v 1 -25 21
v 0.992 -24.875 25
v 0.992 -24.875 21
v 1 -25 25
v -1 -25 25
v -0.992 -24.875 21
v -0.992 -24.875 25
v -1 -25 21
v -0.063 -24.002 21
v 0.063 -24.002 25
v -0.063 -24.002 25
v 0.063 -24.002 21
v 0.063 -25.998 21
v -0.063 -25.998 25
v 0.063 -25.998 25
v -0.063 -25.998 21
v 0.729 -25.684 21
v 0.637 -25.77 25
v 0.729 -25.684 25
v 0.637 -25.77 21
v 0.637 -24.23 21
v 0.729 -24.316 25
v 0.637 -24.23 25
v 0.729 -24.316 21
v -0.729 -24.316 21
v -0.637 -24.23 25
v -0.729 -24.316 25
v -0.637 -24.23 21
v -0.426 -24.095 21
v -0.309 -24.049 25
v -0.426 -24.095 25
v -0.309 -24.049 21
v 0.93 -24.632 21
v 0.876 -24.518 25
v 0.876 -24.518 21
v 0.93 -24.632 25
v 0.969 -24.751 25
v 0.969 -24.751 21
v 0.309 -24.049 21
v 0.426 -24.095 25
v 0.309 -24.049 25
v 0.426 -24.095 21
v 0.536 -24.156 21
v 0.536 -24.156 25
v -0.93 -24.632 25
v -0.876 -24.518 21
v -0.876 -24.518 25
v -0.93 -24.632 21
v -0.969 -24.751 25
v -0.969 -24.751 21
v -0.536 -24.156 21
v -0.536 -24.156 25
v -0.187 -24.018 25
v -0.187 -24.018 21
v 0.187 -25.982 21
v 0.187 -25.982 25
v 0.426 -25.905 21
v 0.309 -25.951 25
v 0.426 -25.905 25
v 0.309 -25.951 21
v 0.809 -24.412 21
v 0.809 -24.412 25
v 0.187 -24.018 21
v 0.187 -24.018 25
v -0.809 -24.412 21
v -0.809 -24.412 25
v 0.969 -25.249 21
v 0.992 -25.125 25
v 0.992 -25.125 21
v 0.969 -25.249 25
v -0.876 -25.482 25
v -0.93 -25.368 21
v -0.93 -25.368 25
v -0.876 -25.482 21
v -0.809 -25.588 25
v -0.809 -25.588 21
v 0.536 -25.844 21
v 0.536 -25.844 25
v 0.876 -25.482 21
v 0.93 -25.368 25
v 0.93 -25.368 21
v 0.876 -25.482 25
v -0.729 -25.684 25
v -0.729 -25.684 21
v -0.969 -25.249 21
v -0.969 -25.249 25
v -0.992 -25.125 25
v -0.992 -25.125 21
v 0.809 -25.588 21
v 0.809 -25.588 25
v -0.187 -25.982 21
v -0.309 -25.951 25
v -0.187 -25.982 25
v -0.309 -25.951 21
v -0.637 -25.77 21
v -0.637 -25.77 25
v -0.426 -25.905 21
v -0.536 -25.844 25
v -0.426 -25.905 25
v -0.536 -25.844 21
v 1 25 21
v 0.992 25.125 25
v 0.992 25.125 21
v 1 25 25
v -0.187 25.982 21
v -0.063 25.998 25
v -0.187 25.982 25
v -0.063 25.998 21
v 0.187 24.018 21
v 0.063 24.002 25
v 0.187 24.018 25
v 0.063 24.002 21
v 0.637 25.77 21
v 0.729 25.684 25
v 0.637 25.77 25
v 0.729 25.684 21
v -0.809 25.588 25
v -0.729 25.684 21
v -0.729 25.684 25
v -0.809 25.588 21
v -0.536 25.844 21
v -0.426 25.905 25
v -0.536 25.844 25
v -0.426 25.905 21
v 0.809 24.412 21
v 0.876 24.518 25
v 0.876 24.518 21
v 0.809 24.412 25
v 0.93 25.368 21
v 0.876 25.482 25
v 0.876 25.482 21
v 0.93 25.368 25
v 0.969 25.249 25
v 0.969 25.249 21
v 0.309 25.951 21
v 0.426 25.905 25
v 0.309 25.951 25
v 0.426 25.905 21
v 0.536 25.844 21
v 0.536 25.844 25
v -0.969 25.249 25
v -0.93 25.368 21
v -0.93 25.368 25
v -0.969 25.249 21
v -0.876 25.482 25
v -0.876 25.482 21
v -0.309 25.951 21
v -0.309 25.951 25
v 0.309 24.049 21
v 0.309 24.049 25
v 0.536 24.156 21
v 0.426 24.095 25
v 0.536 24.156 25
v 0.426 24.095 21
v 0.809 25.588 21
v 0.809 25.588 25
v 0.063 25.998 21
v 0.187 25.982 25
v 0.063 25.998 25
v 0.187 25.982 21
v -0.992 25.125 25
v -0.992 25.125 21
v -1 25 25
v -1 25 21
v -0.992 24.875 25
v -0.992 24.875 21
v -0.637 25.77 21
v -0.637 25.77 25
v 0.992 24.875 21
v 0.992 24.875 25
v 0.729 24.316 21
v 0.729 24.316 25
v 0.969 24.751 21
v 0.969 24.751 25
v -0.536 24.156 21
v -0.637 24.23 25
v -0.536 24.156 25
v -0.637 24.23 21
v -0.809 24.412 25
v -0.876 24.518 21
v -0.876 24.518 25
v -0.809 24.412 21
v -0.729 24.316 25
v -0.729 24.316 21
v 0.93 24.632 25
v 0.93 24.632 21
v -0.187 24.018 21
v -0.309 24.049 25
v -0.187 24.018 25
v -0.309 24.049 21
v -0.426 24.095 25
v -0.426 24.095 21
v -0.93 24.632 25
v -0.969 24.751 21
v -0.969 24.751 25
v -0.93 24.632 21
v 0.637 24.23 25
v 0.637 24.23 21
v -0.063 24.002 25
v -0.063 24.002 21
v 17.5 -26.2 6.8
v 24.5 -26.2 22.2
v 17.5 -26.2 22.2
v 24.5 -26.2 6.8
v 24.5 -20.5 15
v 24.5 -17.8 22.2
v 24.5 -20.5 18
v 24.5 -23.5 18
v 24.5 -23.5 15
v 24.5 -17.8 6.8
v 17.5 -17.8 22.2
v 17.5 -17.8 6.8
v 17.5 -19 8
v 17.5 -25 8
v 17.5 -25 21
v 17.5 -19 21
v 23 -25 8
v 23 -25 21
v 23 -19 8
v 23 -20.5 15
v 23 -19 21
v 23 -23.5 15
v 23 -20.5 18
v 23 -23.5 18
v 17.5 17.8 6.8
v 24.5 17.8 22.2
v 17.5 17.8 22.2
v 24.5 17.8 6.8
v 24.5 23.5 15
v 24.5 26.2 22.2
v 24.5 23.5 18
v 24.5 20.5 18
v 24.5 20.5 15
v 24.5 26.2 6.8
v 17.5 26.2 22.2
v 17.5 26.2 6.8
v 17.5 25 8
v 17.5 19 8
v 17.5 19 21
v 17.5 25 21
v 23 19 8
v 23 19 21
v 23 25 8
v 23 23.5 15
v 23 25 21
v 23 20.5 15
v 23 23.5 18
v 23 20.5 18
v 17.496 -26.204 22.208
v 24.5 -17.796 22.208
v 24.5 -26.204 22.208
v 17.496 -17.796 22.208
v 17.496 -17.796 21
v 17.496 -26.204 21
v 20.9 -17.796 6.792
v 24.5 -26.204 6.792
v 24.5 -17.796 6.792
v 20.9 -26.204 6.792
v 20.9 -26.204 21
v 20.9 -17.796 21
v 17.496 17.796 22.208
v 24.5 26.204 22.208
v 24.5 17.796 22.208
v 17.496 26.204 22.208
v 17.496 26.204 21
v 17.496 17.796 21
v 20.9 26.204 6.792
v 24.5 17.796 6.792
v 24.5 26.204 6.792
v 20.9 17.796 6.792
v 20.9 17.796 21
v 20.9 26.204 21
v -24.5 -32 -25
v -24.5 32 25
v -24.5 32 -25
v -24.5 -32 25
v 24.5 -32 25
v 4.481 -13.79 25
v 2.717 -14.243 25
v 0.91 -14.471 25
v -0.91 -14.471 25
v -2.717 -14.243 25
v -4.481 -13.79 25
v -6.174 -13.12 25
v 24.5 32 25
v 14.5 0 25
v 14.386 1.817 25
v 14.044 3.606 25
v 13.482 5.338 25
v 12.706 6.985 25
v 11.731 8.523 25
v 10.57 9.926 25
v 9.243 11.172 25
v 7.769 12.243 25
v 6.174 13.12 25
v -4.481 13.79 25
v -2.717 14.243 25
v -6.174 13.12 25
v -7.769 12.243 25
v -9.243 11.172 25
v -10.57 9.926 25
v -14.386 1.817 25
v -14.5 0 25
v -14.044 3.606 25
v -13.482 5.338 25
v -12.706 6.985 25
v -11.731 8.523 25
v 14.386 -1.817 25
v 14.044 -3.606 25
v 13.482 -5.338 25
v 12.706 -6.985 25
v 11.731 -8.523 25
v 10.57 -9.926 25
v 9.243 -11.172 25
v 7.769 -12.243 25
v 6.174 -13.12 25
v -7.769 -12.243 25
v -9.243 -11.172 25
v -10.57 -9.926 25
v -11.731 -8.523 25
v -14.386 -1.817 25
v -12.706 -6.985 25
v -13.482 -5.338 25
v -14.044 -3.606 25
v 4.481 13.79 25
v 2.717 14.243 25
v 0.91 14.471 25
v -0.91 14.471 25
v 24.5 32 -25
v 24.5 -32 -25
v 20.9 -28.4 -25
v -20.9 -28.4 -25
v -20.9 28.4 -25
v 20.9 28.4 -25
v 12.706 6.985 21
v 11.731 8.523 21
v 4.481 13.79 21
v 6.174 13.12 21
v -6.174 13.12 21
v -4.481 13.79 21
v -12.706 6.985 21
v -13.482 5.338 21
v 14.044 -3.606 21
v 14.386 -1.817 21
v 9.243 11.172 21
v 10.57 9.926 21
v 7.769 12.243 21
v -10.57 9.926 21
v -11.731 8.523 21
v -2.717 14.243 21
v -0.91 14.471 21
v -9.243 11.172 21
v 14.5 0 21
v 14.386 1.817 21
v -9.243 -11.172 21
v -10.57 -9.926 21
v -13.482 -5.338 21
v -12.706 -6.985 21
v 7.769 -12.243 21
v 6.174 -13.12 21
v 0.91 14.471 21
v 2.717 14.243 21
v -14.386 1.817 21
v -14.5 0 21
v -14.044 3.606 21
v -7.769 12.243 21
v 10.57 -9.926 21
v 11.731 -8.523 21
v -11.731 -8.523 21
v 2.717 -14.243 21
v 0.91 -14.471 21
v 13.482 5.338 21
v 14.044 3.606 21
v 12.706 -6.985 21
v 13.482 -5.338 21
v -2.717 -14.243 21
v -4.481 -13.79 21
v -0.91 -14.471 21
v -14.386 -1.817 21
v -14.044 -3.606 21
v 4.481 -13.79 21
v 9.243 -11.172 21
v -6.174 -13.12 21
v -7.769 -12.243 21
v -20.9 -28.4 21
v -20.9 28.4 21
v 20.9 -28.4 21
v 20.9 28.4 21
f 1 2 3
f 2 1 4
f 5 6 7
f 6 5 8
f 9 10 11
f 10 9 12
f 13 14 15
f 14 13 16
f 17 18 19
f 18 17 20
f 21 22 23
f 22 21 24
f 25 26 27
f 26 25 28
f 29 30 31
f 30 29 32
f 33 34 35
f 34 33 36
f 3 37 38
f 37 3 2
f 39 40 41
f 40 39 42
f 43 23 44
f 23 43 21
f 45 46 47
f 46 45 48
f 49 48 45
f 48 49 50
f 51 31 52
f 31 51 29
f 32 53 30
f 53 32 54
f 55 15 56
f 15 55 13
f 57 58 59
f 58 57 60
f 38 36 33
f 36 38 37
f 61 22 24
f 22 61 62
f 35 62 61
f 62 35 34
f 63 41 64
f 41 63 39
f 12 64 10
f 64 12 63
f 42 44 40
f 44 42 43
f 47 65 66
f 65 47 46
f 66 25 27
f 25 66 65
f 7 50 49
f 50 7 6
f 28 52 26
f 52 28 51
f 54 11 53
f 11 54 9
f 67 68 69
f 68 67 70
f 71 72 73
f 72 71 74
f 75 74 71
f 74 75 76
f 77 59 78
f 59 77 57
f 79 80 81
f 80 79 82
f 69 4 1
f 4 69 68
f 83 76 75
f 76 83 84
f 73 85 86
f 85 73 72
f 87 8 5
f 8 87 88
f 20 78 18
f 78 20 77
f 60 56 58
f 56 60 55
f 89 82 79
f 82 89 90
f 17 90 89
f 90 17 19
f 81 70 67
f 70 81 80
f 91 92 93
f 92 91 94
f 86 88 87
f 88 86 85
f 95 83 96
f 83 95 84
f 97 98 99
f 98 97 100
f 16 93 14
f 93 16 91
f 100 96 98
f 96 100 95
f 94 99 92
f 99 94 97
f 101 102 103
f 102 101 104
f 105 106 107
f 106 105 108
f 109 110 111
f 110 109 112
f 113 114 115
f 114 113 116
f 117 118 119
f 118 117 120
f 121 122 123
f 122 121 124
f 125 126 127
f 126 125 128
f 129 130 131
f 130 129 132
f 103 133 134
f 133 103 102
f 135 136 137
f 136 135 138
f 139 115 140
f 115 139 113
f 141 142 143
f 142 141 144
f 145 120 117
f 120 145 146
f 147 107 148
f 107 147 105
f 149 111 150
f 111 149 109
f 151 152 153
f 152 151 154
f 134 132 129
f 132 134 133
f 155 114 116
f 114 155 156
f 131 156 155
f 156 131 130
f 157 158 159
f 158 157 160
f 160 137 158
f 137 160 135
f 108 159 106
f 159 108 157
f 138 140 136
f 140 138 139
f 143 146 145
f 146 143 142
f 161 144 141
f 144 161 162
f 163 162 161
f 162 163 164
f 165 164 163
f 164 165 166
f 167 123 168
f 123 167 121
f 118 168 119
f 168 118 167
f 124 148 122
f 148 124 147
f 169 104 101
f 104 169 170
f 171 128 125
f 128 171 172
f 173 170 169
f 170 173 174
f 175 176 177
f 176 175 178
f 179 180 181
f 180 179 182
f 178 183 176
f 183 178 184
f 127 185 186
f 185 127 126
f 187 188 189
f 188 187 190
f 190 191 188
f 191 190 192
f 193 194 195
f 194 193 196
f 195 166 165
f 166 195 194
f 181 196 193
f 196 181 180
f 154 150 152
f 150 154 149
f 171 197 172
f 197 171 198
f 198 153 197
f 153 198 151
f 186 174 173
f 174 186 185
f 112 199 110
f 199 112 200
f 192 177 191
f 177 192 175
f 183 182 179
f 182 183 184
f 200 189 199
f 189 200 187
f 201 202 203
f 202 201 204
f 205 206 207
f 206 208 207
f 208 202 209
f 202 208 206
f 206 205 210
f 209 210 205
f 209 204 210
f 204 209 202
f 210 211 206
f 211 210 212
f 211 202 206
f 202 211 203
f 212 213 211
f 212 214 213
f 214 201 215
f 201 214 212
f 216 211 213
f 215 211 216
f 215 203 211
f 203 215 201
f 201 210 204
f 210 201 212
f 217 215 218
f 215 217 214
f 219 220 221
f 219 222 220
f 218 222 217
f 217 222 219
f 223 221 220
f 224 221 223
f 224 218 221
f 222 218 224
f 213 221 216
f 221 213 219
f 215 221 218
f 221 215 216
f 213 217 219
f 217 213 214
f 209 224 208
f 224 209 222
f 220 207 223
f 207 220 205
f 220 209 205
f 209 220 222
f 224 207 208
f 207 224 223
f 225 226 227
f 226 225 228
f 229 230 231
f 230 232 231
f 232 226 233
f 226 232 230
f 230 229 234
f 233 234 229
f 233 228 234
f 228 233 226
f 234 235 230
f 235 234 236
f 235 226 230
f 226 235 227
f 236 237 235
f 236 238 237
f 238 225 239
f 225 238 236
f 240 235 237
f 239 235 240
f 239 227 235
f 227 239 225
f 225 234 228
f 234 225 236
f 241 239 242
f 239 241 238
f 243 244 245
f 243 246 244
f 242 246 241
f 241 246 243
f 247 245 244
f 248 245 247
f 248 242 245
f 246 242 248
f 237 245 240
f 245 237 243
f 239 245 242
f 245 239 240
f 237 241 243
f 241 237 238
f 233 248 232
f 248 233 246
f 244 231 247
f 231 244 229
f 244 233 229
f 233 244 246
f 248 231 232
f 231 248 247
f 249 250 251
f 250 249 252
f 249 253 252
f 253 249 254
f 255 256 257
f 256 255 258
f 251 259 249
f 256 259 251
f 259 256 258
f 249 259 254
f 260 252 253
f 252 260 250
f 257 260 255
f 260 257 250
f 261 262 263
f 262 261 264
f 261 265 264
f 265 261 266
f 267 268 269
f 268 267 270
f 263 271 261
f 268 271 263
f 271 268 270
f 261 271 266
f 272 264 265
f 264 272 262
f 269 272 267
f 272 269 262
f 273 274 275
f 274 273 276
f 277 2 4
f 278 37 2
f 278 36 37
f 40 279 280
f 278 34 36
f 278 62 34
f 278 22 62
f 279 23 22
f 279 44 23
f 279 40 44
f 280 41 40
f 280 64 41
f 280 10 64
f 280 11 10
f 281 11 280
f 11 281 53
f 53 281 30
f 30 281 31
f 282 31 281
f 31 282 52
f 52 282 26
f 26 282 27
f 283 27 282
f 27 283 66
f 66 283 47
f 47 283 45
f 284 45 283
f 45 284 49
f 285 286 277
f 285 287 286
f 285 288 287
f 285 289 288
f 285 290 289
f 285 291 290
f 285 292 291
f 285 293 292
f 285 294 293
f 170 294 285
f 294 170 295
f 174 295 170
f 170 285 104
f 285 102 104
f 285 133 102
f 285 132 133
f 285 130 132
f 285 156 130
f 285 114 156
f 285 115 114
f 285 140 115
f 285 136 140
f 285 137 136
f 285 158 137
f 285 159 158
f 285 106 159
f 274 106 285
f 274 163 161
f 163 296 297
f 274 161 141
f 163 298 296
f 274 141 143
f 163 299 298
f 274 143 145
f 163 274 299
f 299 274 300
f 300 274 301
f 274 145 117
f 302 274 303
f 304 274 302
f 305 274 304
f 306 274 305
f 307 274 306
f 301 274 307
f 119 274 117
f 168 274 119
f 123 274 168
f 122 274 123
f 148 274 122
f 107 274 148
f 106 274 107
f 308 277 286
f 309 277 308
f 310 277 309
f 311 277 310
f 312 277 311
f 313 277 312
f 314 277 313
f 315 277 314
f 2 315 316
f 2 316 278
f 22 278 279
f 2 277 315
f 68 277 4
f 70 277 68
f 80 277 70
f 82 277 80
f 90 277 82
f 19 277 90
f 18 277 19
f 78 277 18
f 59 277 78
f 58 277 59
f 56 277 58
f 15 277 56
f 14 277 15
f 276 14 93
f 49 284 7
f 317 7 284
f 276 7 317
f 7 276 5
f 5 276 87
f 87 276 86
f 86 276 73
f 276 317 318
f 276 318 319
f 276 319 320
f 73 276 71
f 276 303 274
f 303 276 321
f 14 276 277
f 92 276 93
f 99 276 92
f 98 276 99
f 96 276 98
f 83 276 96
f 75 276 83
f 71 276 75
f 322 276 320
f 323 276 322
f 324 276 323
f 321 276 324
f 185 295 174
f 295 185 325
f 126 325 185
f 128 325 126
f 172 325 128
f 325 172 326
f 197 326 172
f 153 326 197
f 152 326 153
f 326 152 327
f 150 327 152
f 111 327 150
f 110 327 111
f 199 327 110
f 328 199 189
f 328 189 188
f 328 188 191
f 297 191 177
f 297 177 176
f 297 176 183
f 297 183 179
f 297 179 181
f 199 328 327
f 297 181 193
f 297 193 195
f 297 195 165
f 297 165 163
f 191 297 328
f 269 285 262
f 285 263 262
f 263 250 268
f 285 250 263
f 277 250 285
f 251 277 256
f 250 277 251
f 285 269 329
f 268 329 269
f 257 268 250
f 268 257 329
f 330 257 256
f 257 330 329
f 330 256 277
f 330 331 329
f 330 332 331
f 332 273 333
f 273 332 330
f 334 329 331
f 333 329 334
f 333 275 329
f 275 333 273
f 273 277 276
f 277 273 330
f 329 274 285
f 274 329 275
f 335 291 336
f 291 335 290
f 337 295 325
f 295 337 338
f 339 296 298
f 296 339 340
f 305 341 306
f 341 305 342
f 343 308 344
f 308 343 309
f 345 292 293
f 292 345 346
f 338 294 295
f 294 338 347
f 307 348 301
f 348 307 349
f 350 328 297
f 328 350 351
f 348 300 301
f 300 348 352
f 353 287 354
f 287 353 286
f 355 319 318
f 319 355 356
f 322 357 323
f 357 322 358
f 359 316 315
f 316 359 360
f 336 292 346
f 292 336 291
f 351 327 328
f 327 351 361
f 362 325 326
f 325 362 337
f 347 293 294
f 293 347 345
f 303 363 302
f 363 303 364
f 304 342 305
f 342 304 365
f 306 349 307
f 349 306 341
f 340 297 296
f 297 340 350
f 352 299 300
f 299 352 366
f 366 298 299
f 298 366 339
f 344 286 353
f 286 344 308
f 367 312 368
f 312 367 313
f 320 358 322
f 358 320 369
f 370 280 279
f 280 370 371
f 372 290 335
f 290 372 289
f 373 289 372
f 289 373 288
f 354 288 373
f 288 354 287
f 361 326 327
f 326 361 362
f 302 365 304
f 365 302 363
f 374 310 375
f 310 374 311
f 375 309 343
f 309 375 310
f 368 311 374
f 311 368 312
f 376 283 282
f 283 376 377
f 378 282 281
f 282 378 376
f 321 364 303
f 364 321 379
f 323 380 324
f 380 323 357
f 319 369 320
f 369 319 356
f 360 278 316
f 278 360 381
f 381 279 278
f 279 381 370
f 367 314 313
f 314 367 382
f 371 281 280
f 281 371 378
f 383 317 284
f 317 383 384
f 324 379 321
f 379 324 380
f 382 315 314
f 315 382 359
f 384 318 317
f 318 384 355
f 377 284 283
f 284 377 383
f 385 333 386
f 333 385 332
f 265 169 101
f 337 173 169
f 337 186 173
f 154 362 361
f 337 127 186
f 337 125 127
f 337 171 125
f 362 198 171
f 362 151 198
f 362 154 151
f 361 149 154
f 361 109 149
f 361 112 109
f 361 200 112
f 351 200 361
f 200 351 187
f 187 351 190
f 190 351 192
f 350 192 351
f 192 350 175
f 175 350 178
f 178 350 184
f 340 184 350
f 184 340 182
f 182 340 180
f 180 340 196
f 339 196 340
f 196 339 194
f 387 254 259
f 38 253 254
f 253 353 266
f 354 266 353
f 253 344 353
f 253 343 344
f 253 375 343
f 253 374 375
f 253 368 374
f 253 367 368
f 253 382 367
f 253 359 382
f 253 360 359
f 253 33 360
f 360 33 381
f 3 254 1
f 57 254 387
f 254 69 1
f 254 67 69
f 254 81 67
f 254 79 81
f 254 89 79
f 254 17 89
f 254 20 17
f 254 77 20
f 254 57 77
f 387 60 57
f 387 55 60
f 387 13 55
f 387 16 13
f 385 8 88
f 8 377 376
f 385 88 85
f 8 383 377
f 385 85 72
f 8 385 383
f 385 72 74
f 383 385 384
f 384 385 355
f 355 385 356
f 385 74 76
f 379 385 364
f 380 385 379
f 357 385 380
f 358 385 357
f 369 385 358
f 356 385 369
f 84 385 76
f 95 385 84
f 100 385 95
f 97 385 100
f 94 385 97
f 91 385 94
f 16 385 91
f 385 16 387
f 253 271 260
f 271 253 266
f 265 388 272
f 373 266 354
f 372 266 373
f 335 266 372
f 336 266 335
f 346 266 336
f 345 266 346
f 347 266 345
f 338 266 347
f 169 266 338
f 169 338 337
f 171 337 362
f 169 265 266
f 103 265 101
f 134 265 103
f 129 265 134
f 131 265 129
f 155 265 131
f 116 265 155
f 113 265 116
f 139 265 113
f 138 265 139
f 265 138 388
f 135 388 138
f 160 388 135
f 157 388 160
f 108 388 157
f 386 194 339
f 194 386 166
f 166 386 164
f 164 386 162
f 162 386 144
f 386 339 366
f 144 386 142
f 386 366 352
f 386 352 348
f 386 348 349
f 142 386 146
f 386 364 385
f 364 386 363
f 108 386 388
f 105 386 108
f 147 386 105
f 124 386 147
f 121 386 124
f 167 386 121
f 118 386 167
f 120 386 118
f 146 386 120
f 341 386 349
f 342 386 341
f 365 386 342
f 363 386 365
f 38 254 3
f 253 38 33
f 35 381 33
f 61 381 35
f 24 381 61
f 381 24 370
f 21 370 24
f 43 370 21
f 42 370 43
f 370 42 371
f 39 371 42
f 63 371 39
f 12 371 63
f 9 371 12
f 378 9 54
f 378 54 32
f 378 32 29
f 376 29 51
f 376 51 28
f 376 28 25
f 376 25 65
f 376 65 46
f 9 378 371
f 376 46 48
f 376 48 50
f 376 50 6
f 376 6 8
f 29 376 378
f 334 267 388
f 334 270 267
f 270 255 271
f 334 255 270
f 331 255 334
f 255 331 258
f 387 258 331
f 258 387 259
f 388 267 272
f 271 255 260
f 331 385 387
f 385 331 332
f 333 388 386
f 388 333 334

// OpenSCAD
//ResinPump
$fn=50;

//Switch Case
module switchCase() {
    difference() {
        cube([8.4,15.4,7],center=true);
        translate([0,0,-1])cube([6,13,6],center=true);
        translate([0,2,3])cube([3,3,2],center=true);
    }
}
module button() {
    cube([2.5,2.5,4],center=true);
    translate([0,0,-2])cube([3.5,3.5,1],center=true);
}
module case() {
    switchTr()rotate([90,0,90])switchCase();
    difference() {
        cube([49,64,50],center=true);
        cylinder(d=29,h=80,center=true);
        translate([0,0,-2])cube([41.8,56.8,46],center=true);
        for(i=[-1,1])translate([0,i*25,-2])cylinder(r=1,h=50);
        switchTr()scale(1.001,0.99,0.99)hull()rotate([90,0,90])switchCase();
    }
}
module switchTr() {
    for(i=[-1,1])translate([21,i*22,14.50001])children();
}


button();
!case();
